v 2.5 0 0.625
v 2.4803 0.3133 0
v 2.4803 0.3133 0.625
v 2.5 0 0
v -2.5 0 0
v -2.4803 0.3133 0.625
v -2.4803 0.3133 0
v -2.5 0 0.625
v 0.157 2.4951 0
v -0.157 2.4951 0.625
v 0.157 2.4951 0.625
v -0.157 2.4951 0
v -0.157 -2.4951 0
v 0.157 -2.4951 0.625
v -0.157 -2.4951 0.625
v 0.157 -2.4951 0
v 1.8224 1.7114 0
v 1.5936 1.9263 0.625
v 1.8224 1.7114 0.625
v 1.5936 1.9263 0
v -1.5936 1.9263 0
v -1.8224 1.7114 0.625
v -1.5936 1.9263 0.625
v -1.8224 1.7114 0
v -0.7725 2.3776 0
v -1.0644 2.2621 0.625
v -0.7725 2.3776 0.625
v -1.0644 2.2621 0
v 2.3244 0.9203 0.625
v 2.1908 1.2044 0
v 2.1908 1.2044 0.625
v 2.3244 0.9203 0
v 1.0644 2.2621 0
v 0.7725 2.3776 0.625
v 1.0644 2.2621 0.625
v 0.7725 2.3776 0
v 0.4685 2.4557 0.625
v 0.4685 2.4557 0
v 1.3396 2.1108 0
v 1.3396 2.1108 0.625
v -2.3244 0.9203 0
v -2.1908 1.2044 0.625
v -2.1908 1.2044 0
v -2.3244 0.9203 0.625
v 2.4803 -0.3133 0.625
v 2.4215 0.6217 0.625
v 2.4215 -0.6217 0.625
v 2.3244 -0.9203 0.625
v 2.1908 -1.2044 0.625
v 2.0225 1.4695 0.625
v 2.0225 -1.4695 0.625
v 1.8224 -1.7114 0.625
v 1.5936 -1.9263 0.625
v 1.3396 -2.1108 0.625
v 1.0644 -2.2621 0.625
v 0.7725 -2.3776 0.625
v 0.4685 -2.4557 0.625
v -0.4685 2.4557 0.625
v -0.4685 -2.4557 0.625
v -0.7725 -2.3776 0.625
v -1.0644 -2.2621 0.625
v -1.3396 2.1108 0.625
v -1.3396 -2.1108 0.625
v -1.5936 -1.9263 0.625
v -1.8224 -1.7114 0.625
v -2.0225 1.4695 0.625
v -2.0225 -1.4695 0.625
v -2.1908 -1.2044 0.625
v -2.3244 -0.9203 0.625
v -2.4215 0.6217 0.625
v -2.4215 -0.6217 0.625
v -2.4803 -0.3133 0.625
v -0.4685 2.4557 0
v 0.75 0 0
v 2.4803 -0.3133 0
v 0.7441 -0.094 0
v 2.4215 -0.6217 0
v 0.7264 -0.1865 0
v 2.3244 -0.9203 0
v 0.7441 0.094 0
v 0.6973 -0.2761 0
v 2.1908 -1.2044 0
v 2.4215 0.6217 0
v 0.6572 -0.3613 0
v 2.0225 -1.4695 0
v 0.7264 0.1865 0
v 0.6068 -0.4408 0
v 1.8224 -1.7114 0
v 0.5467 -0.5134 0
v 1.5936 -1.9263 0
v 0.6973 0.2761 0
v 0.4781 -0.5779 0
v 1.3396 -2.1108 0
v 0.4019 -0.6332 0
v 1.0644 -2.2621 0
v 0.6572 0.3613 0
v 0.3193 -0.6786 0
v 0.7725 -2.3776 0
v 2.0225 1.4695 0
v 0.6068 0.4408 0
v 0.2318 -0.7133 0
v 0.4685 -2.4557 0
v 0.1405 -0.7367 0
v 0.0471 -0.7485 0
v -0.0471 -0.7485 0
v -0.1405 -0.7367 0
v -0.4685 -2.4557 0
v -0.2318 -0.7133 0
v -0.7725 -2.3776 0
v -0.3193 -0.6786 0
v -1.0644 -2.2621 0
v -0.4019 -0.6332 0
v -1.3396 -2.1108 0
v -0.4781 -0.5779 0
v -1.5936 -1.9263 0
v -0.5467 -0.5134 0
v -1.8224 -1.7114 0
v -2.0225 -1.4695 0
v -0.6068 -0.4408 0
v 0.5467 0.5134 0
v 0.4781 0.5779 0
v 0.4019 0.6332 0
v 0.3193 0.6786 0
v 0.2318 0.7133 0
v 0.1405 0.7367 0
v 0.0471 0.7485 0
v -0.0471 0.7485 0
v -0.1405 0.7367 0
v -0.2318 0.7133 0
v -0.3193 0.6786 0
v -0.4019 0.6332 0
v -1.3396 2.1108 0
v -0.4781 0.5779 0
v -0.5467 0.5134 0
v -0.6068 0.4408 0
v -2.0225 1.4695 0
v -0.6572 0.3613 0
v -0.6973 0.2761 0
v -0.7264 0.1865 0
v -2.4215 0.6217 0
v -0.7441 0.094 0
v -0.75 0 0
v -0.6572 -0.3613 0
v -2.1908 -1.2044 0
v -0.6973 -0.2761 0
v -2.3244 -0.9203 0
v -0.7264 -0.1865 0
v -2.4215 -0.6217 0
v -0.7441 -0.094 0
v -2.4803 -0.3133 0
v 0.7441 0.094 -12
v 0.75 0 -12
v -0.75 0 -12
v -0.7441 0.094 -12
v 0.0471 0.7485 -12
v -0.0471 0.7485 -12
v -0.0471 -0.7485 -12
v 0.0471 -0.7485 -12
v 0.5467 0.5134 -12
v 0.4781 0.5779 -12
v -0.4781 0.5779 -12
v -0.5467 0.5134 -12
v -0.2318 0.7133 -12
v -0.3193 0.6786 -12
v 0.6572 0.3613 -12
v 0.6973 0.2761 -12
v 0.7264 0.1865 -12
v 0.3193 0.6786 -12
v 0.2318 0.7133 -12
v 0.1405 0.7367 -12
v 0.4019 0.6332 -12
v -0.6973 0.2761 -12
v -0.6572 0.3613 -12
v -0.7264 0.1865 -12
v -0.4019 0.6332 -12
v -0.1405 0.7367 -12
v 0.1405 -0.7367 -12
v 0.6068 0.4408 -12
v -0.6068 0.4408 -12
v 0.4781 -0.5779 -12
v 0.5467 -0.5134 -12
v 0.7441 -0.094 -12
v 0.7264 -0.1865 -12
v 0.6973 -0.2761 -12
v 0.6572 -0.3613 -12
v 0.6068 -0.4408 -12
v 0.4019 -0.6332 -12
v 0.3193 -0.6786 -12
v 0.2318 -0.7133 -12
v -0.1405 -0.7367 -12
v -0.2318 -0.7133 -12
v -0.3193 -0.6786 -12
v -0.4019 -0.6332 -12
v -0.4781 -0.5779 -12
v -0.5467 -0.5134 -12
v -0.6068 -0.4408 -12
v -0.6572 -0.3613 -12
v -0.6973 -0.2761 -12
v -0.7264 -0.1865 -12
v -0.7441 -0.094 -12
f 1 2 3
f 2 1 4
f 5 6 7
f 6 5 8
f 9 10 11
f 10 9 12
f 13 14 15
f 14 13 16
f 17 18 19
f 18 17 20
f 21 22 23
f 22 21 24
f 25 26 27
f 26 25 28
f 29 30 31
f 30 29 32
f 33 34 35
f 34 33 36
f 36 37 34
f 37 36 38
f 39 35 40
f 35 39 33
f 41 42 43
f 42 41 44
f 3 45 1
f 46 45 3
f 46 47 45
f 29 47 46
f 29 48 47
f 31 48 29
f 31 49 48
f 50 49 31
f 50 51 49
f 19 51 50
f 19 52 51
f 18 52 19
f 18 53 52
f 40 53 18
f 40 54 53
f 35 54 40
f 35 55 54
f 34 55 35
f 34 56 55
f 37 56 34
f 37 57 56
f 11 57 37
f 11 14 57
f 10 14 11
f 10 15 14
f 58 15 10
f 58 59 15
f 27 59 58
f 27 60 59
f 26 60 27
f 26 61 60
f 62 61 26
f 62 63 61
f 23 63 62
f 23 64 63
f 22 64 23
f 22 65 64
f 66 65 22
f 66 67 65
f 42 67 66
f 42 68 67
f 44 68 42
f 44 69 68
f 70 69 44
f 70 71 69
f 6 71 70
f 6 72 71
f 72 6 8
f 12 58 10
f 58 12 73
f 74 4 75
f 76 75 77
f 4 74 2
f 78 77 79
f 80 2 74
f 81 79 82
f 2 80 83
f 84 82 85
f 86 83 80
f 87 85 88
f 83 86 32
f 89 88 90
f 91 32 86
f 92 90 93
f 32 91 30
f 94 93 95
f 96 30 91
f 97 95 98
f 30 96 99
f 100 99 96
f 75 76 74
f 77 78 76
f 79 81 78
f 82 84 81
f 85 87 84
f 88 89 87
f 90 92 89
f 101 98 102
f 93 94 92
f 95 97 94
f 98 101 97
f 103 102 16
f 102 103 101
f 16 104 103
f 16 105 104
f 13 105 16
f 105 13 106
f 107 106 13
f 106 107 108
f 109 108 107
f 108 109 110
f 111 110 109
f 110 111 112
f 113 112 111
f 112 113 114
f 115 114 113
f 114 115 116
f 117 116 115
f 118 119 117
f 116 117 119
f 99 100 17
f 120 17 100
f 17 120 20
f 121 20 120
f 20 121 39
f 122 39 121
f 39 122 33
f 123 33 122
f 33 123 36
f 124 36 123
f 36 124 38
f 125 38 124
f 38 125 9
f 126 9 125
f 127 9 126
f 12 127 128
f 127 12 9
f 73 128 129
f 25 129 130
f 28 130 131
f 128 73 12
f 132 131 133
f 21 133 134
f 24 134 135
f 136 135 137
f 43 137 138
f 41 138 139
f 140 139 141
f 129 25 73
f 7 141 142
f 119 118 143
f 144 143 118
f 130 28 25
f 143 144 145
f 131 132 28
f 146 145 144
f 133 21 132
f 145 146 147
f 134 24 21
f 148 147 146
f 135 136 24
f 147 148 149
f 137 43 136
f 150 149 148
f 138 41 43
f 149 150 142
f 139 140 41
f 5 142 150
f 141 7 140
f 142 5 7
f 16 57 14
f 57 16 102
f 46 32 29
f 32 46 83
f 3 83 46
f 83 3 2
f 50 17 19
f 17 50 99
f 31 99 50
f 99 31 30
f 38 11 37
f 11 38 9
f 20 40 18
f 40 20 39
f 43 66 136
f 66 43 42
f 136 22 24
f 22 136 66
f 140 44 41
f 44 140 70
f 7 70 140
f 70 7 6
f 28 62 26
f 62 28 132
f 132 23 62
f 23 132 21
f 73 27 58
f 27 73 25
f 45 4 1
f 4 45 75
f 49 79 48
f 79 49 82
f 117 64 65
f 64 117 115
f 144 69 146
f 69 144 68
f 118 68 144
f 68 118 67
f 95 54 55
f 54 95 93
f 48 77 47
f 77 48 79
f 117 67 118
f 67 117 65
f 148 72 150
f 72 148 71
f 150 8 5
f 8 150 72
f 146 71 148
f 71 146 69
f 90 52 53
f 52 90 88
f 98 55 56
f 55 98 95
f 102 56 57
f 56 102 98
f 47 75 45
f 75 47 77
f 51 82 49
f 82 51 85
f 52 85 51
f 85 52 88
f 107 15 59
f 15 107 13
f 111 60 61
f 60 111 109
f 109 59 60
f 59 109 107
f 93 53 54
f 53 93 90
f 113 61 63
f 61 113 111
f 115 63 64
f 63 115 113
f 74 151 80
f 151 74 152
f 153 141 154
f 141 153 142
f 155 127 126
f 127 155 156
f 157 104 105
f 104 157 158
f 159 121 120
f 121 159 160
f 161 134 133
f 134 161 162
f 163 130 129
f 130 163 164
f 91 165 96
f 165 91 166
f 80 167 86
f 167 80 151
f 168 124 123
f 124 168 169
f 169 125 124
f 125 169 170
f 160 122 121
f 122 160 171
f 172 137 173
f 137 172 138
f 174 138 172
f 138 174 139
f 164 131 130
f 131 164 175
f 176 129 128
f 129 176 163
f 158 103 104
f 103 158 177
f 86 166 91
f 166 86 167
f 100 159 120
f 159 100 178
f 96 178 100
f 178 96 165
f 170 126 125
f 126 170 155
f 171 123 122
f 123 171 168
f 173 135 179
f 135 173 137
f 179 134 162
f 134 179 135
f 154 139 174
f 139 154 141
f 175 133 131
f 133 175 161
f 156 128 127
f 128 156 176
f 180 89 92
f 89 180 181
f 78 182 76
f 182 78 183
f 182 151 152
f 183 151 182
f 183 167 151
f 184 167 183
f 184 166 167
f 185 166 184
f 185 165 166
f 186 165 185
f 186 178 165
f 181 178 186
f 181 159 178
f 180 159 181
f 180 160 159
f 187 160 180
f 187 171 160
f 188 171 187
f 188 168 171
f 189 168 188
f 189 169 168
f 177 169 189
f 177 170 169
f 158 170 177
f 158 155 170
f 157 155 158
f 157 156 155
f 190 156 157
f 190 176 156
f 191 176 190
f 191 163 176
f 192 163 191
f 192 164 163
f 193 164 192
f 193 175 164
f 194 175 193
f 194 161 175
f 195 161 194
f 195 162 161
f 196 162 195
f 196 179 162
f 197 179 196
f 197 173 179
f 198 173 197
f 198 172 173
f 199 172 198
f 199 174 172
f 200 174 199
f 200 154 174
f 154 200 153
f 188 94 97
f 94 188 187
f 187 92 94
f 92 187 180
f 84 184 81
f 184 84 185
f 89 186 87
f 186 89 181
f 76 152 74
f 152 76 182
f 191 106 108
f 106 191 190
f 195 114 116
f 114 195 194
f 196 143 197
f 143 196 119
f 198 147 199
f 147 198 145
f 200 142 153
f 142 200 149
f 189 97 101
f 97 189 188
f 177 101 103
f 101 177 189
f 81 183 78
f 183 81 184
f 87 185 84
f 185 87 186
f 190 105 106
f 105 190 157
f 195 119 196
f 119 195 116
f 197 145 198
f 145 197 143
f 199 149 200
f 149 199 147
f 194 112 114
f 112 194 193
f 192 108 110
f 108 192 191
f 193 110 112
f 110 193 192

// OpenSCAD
$fn = 50;


difference() {
	union() {
		translate(v = [0, 0, 0]) {
			rotate(a = [0, 0, 0]) {
				cylinder(h = 0.6250000000, r = 2.5000000000);
			}
		}
		translate(v = [0, 0, -12]) {
			rotate(a = [0, 0, 0]) {
				cylinder(h = 12, r = 0.7500000000);
			}
		}
	}
	union();
}
